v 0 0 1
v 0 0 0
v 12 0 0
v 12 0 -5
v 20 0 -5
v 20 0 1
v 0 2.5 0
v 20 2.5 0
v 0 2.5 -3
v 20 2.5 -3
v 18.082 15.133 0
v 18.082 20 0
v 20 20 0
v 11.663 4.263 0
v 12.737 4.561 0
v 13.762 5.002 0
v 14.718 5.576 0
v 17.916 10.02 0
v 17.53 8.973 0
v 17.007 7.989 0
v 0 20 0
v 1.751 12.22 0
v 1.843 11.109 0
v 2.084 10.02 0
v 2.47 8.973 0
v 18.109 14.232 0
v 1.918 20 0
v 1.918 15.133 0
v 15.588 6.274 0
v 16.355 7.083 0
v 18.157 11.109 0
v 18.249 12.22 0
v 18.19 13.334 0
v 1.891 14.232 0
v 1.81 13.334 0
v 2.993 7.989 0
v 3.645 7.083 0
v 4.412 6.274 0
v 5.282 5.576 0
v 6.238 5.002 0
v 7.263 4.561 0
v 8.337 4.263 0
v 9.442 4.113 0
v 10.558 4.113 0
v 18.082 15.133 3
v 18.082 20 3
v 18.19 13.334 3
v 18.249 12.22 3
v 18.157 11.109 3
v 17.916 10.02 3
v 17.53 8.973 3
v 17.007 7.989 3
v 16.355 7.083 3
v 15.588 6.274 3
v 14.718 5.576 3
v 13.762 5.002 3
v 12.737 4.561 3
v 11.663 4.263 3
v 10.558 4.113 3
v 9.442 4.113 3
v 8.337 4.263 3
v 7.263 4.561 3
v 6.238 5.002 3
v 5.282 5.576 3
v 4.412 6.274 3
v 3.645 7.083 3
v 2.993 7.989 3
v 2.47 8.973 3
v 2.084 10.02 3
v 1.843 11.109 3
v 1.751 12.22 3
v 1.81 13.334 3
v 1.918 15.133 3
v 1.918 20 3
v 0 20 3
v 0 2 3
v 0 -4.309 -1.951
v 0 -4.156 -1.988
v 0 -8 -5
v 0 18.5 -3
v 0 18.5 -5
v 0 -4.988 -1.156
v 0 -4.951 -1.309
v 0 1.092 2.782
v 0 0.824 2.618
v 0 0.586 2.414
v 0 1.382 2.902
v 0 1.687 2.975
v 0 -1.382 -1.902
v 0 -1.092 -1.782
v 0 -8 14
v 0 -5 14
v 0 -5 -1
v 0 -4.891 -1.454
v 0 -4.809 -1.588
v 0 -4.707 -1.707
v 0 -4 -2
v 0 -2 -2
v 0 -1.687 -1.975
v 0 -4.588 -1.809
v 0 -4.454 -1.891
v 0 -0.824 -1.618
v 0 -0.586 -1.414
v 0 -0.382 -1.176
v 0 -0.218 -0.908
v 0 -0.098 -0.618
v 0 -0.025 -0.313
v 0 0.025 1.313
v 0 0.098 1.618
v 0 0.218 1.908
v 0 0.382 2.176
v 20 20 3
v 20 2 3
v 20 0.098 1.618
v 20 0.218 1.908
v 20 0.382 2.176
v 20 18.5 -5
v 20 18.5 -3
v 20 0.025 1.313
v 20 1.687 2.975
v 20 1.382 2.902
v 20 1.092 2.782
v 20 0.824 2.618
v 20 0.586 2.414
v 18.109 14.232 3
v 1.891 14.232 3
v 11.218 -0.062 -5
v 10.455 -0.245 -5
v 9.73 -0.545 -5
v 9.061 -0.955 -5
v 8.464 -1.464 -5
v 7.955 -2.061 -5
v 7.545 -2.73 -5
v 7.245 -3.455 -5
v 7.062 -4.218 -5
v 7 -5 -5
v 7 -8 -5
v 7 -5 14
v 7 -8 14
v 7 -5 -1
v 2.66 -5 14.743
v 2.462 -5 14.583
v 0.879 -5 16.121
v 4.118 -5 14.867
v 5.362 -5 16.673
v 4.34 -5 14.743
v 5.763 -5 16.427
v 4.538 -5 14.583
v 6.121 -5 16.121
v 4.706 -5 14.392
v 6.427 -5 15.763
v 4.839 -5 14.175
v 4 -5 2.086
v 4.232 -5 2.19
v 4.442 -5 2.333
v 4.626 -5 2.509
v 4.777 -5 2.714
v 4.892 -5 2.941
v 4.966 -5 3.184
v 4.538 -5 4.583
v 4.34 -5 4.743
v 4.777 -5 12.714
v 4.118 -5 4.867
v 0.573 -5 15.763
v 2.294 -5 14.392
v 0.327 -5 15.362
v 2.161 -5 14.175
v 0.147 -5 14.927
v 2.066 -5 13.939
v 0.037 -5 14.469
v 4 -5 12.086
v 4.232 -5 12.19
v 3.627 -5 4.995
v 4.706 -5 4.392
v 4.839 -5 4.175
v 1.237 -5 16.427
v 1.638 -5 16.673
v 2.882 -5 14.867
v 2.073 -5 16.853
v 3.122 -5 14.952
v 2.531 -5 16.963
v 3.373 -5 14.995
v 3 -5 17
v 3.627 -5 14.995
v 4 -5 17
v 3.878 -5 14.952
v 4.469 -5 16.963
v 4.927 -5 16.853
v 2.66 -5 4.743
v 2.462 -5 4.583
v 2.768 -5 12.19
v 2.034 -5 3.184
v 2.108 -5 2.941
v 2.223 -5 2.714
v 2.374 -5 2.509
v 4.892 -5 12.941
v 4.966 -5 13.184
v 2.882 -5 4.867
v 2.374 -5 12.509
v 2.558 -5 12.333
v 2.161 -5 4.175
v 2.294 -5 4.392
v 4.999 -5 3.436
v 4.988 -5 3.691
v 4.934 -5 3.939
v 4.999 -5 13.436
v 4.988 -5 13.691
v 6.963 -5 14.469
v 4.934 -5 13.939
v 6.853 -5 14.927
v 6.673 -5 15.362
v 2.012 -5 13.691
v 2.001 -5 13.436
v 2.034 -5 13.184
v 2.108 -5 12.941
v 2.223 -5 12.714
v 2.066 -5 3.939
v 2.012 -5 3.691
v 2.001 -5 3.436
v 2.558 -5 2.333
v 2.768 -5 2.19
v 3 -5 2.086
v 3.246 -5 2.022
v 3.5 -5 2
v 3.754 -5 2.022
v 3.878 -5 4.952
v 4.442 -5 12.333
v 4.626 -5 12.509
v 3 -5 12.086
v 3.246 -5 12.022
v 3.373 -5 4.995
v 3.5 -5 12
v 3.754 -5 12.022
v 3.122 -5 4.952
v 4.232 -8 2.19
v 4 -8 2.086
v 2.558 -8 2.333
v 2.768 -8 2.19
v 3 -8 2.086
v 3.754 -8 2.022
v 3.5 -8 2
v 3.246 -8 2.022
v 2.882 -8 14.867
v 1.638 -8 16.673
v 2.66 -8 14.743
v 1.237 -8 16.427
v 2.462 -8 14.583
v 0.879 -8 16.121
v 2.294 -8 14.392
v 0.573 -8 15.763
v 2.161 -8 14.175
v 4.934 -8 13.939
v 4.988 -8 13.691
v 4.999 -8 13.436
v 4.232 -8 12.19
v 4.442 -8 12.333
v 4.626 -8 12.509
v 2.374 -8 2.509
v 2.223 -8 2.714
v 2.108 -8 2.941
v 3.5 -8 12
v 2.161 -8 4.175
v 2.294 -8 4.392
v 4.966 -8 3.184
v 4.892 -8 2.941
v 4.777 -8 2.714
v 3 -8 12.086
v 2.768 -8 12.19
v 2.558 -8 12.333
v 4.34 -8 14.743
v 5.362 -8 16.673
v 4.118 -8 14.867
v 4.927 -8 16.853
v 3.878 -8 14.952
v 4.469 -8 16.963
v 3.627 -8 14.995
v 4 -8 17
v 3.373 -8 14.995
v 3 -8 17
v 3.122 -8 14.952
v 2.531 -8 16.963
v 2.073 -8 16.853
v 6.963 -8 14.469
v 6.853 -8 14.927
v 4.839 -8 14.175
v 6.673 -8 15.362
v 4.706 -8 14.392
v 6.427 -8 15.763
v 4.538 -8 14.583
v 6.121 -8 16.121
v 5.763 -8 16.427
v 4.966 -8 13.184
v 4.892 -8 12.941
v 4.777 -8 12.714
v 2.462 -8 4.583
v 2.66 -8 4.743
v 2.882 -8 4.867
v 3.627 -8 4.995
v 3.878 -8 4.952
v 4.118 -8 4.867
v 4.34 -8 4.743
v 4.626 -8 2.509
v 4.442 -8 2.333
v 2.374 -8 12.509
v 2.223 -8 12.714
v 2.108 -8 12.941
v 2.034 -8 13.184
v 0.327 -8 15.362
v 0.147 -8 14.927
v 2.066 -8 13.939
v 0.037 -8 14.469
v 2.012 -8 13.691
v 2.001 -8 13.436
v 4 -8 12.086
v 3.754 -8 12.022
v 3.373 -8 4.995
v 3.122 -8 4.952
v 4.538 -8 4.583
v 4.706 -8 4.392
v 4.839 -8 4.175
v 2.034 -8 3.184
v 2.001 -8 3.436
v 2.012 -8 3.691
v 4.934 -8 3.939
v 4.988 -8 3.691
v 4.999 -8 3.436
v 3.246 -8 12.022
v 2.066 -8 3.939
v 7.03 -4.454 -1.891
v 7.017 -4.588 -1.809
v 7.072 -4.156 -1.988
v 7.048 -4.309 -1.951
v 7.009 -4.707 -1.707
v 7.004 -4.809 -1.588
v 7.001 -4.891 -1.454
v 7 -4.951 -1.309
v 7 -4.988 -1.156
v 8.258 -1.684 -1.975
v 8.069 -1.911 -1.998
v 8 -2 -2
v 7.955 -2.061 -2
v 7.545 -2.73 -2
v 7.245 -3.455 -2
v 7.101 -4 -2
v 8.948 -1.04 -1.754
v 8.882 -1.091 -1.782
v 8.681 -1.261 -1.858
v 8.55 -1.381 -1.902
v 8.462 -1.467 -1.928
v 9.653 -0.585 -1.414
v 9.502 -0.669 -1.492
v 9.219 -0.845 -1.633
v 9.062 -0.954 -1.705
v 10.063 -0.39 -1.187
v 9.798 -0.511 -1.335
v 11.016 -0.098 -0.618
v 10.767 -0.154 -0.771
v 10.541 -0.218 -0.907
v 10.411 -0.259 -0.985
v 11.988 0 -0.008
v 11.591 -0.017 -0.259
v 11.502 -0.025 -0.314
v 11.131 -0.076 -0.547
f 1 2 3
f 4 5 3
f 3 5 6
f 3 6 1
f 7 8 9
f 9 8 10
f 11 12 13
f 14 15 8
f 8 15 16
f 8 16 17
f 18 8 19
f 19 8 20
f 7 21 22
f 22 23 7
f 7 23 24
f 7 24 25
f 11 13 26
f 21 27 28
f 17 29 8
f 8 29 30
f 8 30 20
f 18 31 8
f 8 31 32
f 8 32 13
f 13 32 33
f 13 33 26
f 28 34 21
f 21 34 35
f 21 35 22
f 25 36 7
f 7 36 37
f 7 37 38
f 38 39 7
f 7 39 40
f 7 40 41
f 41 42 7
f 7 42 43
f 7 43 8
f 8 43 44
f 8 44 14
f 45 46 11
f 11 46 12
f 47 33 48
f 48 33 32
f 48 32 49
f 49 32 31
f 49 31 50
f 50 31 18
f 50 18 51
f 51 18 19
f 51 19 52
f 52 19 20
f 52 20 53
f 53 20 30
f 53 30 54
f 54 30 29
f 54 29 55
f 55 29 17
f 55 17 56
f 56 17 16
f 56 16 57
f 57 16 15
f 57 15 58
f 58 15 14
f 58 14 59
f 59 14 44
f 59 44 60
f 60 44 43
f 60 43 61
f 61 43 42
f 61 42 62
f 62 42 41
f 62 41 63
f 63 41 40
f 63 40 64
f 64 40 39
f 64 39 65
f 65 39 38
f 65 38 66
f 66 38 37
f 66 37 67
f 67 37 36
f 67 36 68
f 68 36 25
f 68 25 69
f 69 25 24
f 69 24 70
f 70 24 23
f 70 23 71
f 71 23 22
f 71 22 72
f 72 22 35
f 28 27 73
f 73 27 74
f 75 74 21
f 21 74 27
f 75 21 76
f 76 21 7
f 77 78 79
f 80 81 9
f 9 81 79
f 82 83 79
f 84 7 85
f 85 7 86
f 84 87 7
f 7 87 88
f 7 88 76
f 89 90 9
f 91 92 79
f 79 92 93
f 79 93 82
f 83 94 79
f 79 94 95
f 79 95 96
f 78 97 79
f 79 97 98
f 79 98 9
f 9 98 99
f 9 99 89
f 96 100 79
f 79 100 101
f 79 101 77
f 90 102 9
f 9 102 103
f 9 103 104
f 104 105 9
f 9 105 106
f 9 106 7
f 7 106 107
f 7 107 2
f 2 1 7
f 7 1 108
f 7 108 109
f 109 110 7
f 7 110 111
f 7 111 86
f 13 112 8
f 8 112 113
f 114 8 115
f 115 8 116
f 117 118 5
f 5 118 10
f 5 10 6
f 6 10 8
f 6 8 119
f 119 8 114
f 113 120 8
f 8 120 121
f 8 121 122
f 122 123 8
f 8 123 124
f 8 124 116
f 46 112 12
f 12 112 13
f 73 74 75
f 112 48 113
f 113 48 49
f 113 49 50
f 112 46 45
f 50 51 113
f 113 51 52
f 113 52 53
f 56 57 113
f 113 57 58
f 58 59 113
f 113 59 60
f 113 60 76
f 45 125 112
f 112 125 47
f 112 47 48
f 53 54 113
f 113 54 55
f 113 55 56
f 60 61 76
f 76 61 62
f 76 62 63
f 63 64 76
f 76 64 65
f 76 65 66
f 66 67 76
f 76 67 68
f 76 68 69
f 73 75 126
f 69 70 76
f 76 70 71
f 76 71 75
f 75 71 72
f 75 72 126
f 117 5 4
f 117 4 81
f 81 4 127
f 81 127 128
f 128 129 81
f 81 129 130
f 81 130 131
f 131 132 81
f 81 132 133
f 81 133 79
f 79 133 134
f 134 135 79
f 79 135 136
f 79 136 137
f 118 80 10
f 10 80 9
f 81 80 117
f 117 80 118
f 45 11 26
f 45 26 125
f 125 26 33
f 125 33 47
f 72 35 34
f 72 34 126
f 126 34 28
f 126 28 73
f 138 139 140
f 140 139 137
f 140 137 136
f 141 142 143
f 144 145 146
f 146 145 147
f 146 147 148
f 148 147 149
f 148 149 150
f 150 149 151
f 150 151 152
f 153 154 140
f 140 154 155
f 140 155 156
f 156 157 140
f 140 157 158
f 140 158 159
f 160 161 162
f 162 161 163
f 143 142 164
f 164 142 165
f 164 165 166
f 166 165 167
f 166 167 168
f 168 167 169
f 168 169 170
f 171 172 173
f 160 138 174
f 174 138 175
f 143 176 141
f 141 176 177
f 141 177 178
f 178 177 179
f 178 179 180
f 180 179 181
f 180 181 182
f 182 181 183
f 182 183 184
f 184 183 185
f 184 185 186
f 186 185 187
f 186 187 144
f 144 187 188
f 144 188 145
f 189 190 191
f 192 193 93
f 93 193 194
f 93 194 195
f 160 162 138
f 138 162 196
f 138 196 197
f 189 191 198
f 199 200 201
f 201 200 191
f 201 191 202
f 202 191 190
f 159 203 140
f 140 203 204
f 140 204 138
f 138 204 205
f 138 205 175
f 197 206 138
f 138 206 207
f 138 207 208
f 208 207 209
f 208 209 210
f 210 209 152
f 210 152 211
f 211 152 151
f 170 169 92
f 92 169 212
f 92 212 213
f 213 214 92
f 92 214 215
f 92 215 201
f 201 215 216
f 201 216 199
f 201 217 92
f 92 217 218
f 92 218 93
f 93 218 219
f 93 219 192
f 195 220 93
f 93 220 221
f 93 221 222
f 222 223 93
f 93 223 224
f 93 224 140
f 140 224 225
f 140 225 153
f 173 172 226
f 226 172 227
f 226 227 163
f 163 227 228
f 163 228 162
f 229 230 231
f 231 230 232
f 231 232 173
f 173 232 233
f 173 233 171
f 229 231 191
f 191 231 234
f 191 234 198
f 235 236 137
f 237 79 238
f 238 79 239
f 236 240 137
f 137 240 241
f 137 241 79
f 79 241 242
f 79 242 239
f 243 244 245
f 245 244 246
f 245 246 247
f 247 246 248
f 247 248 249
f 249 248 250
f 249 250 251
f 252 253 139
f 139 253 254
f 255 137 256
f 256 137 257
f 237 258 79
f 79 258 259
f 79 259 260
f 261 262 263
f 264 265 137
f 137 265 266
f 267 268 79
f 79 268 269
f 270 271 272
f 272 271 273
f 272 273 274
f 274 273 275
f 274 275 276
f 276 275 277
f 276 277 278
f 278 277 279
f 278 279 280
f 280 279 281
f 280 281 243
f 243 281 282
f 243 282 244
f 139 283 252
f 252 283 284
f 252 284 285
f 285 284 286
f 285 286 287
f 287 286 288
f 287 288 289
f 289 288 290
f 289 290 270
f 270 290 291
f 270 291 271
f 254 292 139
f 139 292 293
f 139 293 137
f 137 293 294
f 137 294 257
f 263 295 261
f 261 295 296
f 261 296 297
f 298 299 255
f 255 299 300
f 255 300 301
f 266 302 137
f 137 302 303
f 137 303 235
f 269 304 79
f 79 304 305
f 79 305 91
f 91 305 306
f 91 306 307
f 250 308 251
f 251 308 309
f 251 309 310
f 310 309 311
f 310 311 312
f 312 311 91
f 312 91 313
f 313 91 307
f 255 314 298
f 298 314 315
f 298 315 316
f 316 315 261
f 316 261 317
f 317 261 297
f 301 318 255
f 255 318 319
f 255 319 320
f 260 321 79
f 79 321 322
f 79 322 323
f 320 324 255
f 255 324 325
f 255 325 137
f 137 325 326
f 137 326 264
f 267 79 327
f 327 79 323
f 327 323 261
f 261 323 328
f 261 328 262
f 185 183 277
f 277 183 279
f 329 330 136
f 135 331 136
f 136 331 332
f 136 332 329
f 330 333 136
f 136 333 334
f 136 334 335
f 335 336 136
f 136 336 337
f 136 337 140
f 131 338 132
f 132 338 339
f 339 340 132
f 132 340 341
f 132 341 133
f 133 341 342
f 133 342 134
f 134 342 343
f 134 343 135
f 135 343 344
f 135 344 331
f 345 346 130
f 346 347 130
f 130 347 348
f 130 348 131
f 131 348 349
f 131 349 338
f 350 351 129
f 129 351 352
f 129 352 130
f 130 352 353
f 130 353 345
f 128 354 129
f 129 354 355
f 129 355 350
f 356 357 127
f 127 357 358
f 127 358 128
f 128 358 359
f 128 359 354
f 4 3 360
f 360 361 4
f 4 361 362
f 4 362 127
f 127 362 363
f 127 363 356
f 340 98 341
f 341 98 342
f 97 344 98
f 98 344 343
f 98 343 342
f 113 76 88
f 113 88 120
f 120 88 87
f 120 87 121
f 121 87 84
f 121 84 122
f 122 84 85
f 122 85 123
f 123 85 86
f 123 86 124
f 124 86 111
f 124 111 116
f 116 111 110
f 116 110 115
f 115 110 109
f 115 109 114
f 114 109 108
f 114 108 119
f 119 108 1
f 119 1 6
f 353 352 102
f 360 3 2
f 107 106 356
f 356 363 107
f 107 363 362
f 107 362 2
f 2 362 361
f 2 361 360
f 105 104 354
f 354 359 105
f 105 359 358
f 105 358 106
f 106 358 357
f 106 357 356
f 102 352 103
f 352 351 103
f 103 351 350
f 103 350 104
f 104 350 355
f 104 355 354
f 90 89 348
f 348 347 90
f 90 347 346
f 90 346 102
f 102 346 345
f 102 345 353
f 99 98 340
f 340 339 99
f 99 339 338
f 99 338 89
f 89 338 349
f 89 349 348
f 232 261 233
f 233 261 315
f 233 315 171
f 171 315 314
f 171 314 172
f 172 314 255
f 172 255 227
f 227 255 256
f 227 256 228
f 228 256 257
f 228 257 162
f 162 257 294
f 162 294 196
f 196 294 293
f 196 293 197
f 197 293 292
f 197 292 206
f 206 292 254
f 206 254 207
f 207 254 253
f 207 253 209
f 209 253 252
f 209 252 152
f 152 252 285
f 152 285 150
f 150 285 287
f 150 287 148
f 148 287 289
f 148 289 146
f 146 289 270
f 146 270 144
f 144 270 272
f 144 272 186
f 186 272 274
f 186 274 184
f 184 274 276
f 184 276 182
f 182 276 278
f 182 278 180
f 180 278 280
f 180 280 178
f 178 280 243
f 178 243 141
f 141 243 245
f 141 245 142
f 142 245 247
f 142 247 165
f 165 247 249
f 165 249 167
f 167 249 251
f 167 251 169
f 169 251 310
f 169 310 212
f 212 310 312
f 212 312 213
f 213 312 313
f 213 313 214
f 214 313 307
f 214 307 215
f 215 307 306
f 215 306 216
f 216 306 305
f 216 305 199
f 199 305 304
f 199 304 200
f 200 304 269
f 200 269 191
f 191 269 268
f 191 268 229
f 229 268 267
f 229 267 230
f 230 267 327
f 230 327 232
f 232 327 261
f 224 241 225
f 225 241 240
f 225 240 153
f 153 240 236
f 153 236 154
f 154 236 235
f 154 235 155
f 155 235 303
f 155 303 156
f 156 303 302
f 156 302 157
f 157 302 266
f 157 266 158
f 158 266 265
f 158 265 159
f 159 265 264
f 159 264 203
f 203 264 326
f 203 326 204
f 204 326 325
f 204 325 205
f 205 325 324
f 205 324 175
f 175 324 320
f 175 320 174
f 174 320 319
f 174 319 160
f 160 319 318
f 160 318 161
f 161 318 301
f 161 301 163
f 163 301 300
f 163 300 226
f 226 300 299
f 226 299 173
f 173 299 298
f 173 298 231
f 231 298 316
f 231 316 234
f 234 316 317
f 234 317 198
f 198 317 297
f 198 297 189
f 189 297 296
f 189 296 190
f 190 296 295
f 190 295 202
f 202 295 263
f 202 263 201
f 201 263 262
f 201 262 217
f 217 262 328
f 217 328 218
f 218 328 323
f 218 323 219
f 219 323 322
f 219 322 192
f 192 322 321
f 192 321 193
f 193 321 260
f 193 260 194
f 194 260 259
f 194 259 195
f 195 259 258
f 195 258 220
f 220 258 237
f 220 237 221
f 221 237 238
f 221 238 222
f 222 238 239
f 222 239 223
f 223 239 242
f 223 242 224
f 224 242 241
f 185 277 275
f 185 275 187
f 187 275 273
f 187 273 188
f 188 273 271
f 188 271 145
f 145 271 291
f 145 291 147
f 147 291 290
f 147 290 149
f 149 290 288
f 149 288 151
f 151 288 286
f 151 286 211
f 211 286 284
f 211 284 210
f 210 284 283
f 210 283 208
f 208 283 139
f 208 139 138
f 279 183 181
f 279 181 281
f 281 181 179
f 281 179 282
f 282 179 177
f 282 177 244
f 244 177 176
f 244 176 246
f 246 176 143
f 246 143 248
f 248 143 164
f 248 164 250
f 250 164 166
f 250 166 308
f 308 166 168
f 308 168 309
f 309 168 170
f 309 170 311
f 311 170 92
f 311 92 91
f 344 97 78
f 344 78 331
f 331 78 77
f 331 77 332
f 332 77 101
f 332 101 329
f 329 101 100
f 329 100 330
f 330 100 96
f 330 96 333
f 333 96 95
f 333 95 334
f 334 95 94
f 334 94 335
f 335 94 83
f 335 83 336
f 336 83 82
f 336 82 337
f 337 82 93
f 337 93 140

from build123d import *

# Parameters (mm, degrees)
BOSS_EXTRUDE1_DEPTH = 3
SKETCH2_W           = 20
SKETCH2_H           = 2.5
BOSS_EXTRUDE2_DEPTH = 5
SKETCH3_W           = 20
SKETCH3_H           = 2
BOSS_EXTRUDE3_DEPTH = 16
FILLET1_R           = 15
SKETCH4_W           = 7
SKETCH4_H           = 8
BOSS_EXTRUDE4_DEPTH = 5
SKETCH5_W           = 7
SKETCH5_H           = 3
BOSS_EXTRUDE5_DEPTH = 22
FILLET2_R           = 5
SKETCH7_W           = 5
SKETCH7_H           = 5
CUT_EXTRUDE1_DEPTH  = 34
FILLET3_R           = 2
CUT_EXTRUDE2_DEPTH  = 5
FILLET4_R           = 3
FILLET5_R           = 1


with BuildPart() as part:
    # Sketch1 → Boss-Extrude1 (new body)
    with BuildSketch(Plane.XY):
        with BuildLine():
            Line((18.08210451, 20), (20, 20))
            Line((20, 20), (20, 0))
            Line((20, 0), (0, 0))
            Line((0, 0), (0, 20))
            Line((0, 20), (1.91789549, 20))
            Line((1.91789549, 20), (1.91789549, 14))
            ThreePointArc((1.91789549, 14), (10, 4.094075277), (18.08210451, 14))
            Line((18.08210451, 14), (18.08210451, 20))
        make_face()
    extrude(amount=BOSS_EXTRUDE1_DEPTH)

    # Sketch2 → Boss-Extrude2 (add)
    with BuildSketch(Plane(origin=(0, 0, 0), x_dir=(-1, 0, 0), z_dir=(0, 0, -1))):
        with Locations((-10, 1.25)):
            Rectangle(SKETCH2_W, SKETCH2_H)
    extrude(amount=BOSS_EXTRUDE2_DEPTH)

    # Sketch3 → Boss-Extrude3 (add)
    with BuildSketch(Plane(origin=(0, 2.5, 0), x_dir=(1, 0, 0), z_dir=(0, 1, 0))):
        with Locations((10, 4)):
            Rectangle(SKETCH3_W, SKETCH3_H)
    extrude(amount=BOSS_EXTRUDE3_DEPTH)

    # Fillet1
    fillet1_edges = [part.edges().sort_by_distance(p)[0] for p in [
        (1.91789549, 14, 1.5),
        (18.08210451, 14, 1.5),
    ]]
    fillet(fillet1_edges, radius=FILLET1_R)

    # Sketch4 → Boss-Extrude4 (add)
    with BuildSketch(Plane.XZ):
        with Locations((3.5, -1)):
            Rectangle(SKETCH4_W, SKETCH4_H)
    extrude(amount=BOSS_EXTRUDE4_DEPTH)

    # Sketch5 → Boss-Extrude5 (add)
    with BuildSketch(Plane(origin=(0, 0, -5), x_dir=(-1, 0, 0), z_dir=(0, 0, -1))):
        with Locations((-3.5, -6.5)):
            Rectangle(SKETCH5_W, SKETCH5_H)
    extrude(amount=-BOSS_EXTRUDE5_DEPTH)

    # Fillet2
    fillet2_edges = [part.edges().sort_by_distance(p)[0] for p in [
        (7, 0, -1),
    ]]
    fillet(fillet2_edges, radius=FILLET2_R)

    # Sketch7 → Cut-Extrude1 (cut, through all)
    with BuildSketch(Plane.ZY):
        with Locations((0.5, -2.5)):
            Rectangle(SKETCH7_W, SKETCH7_H)
    extrude(amount=-CUT_EXTRUDE1_DEPTH, mode=Mode.SUBTRACT)

    # Fillet3
    fillet3_edges = [part.edges().sort_by_distance(p)[0] for p in [
        (10, 0, 3),
        (6, 0, -2),
    ]]
    fillet(fillet3_edges, radius=FILLET3_R)

    # Sketch6 → Cut-Extrude2 (cut)
    with BuildSketch(Plane(origin=(0, -8, 0), x_dir=(-1, 0, 0), z_dir=(0, -1, 0))):
        with BuildLine():
            ThreePointArc((-3.5, -2), (-5, -3.5), (-3.5, -5))
            Line((-3.5, -5), (-3.5, -2))
        make_face()
        with BuildLine():
            Line((-3.5, -2), (-3.5, -5))
            ThreePointArc((-3.5, -5), (-2.439339828, -4.560660172), (-2, -3.5))
            ThreePointArc((-2, -3.5), (-2.439339828, -2.439339828), (-3.5, -2))
        make_face()
        with BuildLine():
            ThreePointArc((-3.5, -12), (-5, -13.5), (-3.5, -15))
            Line((-3.5, -15), (-3.5, -12))
        make_face()
        with BuildLine():
            Line((-3.5, -12), (-3.5, -15))
            ThreePointArc((-3.5, -15), (-2.439339828, -14.560660172), (-2, -13.5))
            ThreePointArc((-2, -13.5), (-2.439339828, -12.439339828), (-3.5, -12))
        make_face()
    extrude(amount=-CUT_EXTRUDE2_DEPTH, mode=Mode.SUBTRACT)

    # Fillet4
    fillet4_edges = [part.edges().sort_by_distance(p)[0] for p in [
        (7, -6.5, 17),
        (0, -6.5, 17),
    ]]
    fillet(fillet4_edges, radius=FILLET4_R)

    # Fillet5
    # the kernel refuses this fillet: 1 mm, written as the material it adds along each edge
    with BuildSketch(Plane(origin=(0, -5, -2), x_dir=(0, 0, 1), z_dir=(1, 0, 0))) as fillet5_piece_1_section:
        with BuildLine():
            CenterArc((FILLET5_R, -FILLET5_R), FILLET5_R, 90, 90)
            Line((0, -FILLET5_R), (0, 0))
            Line((0, 0), (FILLET5_R, 0))
        make_face()
    fillet5_piece_1 = extrude(amount=9.5, mode=Mode.PRIVATE)
    fillet5_piece_1 = fillet5_piece_1 - Plane(origin=(12, -5, -1.773604886), x_dir=(-1, 0, 0), z_dir=(0, 0, -1)) * Cylinder(5, 23, mode=Mode.PRIVATE)
    add(fillet5_piece_1)


solid = part.part
